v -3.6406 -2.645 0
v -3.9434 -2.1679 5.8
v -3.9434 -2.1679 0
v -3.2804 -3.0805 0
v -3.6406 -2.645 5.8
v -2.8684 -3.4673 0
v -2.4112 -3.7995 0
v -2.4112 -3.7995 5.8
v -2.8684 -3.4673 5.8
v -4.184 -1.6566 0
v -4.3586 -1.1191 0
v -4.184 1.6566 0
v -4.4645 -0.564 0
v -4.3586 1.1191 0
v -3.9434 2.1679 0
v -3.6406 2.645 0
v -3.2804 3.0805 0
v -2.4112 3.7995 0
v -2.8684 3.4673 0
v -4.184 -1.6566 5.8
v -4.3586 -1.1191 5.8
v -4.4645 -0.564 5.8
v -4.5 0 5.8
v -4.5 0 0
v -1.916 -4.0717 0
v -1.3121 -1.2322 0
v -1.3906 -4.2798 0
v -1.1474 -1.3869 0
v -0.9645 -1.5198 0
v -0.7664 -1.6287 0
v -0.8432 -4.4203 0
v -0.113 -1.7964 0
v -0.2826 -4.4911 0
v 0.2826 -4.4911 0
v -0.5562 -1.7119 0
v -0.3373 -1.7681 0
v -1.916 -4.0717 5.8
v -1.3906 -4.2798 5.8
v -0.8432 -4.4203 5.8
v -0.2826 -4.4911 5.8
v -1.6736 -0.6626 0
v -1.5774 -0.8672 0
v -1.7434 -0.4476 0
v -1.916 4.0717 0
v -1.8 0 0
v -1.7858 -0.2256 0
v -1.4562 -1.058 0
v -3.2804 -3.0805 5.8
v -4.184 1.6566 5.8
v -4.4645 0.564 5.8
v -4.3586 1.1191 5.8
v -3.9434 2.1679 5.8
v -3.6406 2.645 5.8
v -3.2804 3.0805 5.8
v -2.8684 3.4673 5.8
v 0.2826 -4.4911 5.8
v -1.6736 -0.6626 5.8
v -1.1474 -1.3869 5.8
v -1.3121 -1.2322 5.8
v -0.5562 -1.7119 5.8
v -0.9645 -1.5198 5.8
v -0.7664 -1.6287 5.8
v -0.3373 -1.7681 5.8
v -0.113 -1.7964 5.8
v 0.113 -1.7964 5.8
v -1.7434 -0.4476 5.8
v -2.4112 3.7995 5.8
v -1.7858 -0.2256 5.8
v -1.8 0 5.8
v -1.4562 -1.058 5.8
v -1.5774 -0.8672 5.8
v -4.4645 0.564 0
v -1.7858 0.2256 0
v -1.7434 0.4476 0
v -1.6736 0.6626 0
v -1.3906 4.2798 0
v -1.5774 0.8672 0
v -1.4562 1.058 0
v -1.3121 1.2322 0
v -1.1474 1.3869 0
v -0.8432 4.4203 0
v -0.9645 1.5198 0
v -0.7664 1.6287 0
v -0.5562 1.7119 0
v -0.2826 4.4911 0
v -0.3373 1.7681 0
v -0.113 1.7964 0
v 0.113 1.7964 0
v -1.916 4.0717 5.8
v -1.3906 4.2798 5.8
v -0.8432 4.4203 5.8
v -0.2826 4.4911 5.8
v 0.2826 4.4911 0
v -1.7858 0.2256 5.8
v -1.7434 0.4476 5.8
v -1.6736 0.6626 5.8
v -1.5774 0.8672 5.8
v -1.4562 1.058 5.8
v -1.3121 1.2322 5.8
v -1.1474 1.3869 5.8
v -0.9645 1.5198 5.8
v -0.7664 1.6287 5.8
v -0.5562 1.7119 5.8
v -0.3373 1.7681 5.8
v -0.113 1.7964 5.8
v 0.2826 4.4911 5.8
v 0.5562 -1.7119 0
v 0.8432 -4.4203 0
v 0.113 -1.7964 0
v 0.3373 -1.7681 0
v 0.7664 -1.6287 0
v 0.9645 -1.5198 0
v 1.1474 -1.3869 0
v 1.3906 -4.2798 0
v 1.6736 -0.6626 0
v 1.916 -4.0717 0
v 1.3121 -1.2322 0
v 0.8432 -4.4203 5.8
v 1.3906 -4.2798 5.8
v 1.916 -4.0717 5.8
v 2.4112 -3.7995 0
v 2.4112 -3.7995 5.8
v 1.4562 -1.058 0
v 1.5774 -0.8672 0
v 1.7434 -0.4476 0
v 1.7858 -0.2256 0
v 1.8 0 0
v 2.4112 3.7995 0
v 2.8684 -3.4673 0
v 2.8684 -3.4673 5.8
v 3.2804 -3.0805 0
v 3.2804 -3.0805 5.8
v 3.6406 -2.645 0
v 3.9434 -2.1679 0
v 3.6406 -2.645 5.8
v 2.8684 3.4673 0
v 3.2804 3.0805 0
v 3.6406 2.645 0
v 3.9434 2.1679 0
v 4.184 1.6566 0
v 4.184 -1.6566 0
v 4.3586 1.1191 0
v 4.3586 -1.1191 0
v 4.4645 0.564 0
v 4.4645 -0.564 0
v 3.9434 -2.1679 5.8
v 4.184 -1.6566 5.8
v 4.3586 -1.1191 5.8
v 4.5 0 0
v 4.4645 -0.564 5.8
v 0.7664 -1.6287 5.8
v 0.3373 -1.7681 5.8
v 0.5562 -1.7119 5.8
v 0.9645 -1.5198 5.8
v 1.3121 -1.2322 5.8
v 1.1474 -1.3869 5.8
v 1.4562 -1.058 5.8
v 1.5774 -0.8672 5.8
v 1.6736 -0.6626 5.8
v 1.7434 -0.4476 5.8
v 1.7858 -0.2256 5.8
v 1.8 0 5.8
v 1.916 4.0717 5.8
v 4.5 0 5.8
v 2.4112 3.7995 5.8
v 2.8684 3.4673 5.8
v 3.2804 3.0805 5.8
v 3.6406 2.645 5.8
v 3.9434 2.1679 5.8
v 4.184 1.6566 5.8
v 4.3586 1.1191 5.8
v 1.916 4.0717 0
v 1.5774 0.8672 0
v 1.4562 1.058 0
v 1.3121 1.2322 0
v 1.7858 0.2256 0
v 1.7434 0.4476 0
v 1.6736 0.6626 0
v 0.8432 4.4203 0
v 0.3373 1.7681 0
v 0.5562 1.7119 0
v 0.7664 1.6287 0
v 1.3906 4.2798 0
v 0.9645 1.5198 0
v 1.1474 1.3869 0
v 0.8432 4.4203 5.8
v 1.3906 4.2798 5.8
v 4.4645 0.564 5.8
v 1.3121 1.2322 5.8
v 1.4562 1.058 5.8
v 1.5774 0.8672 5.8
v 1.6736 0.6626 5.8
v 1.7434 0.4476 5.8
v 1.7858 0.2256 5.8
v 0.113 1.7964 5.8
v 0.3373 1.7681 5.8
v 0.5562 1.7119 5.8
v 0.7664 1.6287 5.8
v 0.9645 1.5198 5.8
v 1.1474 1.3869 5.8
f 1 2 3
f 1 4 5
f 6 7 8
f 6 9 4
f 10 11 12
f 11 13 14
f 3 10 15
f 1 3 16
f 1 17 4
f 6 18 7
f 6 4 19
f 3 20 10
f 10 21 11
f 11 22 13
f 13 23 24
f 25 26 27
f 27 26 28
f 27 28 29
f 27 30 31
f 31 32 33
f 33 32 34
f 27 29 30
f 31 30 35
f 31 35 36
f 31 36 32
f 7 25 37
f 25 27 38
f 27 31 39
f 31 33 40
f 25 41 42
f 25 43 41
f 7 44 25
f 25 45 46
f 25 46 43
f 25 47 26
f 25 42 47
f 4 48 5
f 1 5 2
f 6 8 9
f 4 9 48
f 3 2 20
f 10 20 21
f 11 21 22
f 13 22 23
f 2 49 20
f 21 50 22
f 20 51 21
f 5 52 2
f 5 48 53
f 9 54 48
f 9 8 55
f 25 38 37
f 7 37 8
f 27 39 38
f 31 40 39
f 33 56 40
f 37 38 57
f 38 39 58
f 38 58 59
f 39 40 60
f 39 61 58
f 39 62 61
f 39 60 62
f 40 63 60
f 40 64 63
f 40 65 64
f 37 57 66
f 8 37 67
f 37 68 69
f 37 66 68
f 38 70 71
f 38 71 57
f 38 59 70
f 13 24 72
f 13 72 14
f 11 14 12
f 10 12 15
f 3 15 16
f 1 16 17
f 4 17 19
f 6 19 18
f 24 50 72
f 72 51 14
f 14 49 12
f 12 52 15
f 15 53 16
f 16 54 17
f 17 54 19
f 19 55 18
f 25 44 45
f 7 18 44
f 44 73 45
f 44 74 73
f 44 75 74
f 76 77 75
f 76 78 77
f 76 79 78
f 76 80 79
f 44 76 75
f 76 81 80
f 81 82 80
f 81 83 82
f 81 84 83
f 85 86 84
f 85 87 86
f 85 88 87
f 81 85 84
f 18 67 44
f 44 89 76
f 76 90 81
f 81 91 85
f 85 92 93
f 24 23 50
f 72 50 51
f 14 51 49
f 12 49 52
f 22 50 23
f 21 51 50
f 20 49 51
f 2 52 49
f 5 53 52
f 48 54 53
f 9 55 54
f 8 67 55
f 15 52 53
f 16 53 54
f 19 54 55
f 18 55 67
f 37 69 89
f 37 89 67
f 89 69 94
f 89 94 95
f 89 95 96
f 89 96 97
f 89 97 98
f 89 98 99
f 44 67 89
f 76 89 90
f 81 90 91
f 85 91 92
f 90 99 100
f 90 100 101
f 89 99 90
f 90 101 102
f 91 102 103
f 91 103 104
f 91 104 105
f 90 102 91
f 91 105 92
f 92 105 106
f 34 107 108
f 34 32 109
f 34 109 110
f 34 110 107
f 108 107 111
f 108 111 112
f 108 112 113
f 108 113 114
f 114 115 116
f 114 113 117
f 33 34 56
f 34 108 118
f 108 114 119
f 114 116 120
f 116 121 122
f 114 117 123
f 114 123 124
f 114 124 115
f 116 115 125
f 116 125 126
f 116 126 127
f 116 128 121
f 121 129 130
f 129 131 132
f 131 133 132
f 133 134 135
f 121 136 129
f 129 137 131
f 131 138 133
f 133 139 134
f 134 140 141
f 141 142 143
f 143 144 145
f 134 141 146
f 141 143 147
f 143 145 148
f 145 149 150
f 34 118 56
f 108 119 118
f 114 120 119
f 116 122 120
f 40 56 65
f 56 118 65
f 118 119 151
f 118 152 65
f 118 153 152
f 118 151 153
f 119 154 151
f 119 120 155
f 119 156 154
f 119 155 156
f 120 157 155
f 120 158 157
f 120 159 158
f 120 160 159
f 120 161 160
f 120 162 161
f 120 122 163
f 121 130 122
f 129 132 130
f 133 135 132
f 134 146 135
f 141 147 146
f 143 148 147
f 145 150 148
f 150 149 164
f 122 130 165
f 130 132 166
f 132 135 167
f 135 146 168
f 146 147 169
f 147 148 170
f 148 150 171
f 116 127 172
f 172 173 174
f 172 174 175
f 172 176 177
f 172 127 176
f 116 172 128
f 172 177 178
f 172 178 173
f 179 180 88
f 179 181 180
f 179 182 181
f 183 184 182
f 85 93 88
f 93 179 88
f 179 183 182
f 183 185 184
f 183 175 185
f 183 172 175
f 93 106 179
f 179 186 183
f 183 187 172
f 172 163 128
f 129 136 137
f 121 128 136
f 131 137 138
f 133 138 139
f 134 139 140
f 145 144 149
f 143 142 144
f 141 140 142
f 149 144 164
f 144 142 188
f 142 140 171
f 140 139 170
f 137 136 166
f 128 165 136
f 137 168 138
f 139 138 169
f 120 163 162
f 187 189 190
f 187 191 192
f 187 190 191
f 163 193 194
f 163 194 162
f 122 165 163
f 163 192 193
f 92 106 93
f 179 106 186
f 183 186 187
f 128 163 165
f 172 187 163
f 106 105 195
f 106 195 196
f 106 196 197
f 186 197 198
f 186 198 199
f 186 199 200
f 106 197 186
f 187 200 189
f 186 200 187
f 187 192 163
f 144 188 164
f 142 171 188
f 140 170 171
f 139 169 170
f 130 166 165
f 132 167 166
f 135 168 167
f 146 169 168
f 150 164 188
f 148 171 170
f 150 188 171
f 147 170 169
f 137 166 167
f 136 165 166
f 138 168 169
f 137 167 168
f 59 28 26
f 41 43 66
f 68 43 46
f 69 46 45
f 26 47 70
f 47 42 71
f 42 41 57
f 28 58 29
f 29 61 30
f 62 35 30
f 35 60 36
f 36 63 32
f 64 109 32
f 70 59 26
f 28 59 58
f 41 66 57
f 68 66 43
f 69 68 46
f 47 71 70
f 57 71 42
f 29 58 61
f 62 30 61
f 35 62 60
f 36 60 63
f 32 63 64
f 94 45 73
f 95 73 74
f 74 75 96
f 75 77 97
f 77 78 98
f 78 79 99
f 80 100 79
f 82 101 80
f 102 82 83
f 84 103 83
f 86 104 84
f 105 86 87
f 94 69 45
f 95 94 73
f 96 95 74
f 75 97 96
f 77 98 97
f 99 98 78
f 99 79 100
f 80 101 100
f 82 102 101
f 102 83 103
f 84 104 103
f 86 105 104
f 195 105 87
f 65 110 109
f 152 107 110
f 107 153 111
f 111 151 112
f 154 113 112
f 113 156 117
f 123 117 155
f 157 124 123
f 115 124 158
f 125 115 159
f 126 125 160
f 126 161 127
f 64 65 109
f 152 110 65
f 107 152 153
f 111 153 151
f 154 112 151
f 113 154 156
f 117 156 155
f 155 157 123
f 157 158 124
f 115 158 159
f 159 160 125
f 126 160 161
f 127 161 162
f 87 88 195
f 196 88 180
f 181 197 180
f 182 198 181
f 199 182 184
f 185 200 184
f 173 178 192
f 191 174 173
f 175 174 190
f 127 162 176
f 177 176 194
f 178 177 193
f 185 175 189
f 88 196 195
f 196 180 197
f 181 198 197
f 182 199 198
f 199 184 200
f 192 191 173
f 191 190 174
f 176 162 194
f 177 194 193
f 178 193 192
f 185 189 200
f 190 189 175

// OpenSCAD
$fn = 50;

difference() {
	union() {
		translate(v = [22.5, 7.5, -3]) {
			rotate(a = [0, 0, 0]) {
				difference() {
					union() {
						translate(v = [-22.5, -7.5, 3.0]) {
							cylinder(h = 5.8, r = 4.5);
						}
					}
					union() {
						translate(v = [-22.5, -7.5, 2.9]) {
							cylinder(h = 6, r = 1.8);
						}
					}
				}
			}
		}
	}
	union();
}
